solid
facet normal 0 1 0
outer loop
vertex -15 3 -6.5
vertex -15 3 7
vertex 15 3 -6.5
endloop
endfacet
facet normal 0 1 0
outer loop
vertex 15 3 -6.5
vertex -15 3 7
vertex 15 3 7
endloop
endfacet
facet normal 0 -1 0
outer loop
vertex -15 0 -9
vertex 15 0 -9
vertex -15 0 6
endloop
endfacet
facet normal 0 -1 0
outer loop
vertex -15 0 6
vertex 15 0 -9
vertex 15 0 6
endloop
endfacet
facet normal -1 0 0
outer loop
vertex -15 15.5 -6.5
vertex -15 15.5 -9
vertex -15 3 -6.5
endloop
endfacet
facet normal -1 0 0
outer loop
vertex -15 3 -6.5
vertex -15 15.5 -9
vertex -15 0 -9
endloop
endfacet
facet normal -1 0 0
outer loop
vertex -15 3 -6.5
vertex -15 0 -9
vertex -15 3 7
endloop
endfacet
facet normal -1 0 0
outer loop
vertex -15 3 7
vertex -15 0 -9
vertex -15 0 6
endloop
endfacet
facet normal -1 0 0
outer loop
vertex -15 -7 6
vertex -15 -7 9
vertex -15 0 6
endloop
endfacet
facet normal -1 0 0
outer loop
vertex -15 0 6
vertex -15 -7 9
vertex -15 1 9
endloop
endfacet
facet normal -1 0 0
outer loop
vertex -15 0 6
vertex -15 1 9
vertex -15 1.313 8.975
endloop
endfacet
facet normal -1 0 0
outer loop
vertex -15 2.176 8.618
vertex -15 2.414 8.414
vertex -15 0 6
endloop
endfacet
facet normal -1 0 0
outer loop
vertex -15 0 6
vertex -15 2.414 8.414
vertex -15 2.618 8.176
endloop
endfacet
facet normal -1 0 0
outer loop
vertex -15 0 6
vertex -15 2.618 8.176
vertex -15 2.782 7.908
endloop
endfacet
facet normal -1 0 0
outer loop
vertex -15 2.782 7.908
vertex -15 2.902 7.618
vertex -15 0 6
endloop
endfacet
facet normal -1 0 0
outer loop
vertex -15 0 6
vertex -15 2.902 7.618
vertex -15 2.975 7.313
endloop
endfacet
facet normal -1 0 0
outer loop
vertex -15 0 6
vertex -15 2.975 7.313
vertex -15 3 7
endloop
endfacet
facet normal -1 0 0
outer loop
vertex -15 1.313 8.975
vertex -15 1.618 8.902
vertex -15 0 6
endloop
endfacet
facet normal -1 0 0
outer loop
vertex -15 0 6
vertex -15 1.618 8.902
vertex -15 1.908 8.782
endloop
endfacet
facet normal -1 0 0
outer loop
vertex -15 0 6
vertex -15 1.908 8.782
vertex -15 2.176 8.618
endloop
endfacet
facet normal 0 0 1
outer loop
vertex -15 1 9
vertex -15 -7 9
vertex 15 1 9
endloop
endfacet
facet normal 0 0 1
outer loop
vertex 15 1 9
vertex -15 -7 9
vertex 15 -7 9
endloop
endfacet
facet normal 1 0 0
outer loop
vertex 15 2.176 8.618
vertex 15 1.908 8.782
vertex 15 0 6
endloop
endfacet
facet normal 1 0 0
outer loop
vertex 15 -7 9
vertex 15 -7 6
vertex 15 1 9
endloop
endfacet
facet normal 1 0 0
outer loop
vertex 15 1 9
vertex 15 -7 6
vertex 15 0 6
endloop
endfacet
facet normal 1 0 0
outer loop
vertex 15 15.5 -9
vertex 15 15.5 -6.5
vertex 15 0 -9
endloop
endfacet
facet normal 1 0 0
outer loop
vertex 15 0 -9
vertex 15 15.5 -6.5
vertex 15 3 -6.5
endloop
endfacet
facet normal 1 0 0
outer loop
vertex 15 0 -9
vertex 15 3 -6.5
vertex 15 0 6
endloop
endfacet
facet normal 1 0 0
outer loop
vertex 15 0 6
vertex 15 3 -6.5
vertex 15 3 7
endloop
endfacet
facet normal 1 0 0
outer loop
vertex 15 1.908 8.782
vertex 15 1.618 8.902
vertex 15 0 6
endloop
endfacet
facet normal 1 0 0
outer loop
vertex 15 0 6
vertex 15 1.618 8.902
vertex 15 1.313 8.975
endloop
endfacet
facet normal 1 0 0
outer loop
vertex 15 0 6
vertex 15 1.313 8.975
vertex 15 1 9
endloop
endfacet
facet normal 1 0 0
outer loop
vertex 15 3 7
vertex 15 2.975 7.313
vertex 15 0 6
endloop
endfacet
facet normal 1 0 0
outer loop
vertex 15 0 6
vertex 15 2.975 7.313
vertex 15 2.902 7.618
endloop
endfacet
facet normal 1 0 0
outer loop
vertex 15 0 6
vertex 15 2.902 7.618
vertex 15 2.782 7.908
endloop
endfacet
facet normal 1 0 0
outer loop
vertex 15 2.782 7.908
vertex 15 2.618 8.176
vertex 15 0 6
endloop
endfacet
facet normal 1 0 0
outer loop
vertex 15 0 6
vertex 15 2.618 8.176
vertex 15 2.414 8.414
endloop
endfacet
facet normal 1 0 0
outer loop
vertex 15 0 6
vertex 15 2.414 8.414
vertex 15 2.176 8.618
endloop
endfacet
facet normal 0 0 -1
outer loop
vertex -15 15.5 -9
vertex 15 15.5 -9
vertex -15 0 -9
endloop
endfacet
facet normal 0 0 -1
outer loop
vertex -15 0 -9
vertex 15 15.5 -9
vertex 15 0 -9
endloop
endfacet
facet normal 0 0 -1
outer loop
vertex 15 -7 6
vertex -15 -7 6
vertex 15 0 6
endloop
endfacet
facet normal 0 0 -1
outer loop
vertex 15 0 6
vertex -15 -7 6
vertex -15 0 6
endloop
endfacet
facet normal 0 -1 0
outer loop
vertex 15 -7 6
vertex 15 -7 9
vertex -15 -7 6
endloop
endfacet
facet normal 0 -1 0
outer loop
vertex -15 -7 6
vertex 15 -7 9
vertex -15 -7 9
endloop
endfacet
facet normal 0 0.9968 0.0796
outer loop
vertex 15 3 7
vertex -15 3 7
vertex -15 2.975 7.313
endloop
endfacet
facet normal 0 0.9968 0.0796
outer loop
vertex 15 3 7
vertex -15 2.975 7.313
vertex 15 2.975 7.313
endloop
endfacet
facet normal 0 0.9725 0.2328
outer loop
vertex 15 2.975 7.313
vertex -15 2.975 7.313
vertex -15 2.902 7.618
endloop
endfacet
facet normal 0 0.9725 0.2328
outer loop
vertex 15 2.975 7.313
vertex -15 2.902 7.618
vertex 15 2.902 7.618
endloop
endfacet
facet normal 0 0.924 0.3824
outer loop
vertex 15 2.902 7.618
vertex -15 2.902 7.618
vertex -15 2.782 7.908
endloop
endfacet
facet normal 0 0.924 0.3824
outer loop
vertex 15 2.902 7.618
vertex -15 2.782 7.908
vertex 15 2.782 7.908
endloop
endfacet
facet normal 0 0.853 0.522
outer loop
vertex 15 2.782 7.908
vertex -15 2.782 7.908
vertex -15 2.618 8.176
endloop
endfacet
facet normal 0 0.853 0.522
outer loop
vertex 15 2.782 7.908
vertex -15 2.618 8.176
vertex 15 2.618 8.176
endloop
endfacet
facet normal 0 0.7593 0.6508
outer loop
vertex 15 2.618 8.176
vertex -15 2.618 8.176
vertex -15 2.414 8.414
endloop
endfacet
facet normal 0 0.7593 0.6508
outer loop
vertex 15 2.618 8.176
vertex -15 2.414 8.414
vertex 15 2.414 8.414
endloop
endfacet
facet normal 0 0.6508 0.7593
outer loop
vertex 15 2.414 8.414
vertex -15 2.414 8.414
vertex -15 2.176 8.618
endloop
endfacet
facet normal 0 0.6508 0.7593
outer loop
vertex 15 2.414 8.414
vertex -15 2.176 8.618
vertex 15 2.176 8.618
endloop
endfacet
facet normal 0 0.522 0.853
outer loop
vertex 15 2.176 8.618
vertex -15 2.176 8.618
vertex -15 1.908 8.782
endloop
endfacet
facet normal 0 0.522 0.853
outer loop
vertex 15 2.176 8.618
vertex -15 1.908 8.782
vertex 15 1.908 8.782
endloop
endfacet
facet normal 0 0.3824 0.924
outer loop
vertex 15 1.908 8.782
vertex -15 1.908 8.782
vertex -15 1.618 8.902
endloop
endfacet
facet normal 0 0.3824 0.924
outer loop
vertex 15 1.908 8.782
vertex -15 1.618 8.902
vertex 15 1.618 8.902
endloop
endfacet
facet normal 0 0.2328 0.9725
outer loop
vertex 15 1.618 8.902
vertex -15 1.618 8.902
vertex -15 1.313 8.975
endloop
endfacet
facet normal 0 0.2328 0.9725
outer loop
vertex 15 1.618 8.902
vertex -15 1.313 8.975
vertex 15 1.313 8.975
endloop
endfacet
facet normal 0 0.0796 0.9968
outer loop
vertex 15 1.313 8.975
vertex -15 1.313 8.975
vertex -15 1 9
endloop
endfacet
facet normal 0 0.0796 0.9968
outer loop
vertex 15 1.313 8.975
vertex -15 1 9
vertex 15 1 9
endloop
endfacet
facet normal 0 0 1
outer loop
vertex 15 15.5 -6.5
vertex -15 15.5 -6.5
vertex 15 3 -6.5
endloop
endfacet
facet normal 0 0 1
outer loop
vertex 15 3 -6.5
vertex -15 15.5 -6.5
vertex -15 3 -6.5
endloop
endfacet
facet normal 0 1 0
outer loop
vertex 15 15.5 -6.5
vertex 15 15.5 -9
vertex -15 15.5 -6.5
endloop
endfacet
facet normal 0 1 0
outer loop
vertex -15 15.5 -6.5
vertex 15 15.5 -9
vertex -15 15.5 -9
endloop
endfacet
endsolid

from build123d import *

# Parameters (mm, degrees)
SKETCH_1_W      = 30
SKETCH_1_H      = 18
EXTRUDE_1_DEPTH = 3
SKETCH_2_W      = 30
SKETCH_2_H      = 3
EXTRUDE_2_DEPTH = 7
FILLET_1_R      = 2
SKETCH_5_W      = 30
SKETCH_5_H      = 2.5
EXTRUDE_3_DEPTH = 12.5


with BuildPart() as part:
    # 스케치1 → 보스-돌출1 (new body)
    with BuildSketch(Plane(origin=(0, 0, 0), x_dir=(1, 0, 0), z_dir=(0, 1, 0))):
        Rectangle(SKETCH_1_W, SKETCH_1_H)
    extrude(amount=EXTRUDE_1_DEPTH)

    # 스케치2 → 보스-돌출2 (add)
    with BuildSketch(Plane.XZ):
        with Locations((0, 7.5)):
            Rectangle(SKETCH_2_W, SKETCH_2_H)
    extrude(amount=EXTRUDE_2_DEPTH)

    # 필렛1
    fillet_1_edges = [part.edges().sort_by_distance(p)[0] for p in [
        (0, 3, 9),
    ]]
    fillet(fillet_1_edges, radius=FILLET_1_R)

    # 스케치5 → 보스-돌출3 (add)
    with BuildSketch(Plane(origin=(0, 3, 0), x_dir=(1, 0, 0), z_dir=(0, 1, 0))):
        with Locations((0, 7.75)):
            Rectangle(SKETCH_5_W, SKETCH_5_H)
    extrude(amount=EXTRUDE_3_DEPTH)


solid = part.part
